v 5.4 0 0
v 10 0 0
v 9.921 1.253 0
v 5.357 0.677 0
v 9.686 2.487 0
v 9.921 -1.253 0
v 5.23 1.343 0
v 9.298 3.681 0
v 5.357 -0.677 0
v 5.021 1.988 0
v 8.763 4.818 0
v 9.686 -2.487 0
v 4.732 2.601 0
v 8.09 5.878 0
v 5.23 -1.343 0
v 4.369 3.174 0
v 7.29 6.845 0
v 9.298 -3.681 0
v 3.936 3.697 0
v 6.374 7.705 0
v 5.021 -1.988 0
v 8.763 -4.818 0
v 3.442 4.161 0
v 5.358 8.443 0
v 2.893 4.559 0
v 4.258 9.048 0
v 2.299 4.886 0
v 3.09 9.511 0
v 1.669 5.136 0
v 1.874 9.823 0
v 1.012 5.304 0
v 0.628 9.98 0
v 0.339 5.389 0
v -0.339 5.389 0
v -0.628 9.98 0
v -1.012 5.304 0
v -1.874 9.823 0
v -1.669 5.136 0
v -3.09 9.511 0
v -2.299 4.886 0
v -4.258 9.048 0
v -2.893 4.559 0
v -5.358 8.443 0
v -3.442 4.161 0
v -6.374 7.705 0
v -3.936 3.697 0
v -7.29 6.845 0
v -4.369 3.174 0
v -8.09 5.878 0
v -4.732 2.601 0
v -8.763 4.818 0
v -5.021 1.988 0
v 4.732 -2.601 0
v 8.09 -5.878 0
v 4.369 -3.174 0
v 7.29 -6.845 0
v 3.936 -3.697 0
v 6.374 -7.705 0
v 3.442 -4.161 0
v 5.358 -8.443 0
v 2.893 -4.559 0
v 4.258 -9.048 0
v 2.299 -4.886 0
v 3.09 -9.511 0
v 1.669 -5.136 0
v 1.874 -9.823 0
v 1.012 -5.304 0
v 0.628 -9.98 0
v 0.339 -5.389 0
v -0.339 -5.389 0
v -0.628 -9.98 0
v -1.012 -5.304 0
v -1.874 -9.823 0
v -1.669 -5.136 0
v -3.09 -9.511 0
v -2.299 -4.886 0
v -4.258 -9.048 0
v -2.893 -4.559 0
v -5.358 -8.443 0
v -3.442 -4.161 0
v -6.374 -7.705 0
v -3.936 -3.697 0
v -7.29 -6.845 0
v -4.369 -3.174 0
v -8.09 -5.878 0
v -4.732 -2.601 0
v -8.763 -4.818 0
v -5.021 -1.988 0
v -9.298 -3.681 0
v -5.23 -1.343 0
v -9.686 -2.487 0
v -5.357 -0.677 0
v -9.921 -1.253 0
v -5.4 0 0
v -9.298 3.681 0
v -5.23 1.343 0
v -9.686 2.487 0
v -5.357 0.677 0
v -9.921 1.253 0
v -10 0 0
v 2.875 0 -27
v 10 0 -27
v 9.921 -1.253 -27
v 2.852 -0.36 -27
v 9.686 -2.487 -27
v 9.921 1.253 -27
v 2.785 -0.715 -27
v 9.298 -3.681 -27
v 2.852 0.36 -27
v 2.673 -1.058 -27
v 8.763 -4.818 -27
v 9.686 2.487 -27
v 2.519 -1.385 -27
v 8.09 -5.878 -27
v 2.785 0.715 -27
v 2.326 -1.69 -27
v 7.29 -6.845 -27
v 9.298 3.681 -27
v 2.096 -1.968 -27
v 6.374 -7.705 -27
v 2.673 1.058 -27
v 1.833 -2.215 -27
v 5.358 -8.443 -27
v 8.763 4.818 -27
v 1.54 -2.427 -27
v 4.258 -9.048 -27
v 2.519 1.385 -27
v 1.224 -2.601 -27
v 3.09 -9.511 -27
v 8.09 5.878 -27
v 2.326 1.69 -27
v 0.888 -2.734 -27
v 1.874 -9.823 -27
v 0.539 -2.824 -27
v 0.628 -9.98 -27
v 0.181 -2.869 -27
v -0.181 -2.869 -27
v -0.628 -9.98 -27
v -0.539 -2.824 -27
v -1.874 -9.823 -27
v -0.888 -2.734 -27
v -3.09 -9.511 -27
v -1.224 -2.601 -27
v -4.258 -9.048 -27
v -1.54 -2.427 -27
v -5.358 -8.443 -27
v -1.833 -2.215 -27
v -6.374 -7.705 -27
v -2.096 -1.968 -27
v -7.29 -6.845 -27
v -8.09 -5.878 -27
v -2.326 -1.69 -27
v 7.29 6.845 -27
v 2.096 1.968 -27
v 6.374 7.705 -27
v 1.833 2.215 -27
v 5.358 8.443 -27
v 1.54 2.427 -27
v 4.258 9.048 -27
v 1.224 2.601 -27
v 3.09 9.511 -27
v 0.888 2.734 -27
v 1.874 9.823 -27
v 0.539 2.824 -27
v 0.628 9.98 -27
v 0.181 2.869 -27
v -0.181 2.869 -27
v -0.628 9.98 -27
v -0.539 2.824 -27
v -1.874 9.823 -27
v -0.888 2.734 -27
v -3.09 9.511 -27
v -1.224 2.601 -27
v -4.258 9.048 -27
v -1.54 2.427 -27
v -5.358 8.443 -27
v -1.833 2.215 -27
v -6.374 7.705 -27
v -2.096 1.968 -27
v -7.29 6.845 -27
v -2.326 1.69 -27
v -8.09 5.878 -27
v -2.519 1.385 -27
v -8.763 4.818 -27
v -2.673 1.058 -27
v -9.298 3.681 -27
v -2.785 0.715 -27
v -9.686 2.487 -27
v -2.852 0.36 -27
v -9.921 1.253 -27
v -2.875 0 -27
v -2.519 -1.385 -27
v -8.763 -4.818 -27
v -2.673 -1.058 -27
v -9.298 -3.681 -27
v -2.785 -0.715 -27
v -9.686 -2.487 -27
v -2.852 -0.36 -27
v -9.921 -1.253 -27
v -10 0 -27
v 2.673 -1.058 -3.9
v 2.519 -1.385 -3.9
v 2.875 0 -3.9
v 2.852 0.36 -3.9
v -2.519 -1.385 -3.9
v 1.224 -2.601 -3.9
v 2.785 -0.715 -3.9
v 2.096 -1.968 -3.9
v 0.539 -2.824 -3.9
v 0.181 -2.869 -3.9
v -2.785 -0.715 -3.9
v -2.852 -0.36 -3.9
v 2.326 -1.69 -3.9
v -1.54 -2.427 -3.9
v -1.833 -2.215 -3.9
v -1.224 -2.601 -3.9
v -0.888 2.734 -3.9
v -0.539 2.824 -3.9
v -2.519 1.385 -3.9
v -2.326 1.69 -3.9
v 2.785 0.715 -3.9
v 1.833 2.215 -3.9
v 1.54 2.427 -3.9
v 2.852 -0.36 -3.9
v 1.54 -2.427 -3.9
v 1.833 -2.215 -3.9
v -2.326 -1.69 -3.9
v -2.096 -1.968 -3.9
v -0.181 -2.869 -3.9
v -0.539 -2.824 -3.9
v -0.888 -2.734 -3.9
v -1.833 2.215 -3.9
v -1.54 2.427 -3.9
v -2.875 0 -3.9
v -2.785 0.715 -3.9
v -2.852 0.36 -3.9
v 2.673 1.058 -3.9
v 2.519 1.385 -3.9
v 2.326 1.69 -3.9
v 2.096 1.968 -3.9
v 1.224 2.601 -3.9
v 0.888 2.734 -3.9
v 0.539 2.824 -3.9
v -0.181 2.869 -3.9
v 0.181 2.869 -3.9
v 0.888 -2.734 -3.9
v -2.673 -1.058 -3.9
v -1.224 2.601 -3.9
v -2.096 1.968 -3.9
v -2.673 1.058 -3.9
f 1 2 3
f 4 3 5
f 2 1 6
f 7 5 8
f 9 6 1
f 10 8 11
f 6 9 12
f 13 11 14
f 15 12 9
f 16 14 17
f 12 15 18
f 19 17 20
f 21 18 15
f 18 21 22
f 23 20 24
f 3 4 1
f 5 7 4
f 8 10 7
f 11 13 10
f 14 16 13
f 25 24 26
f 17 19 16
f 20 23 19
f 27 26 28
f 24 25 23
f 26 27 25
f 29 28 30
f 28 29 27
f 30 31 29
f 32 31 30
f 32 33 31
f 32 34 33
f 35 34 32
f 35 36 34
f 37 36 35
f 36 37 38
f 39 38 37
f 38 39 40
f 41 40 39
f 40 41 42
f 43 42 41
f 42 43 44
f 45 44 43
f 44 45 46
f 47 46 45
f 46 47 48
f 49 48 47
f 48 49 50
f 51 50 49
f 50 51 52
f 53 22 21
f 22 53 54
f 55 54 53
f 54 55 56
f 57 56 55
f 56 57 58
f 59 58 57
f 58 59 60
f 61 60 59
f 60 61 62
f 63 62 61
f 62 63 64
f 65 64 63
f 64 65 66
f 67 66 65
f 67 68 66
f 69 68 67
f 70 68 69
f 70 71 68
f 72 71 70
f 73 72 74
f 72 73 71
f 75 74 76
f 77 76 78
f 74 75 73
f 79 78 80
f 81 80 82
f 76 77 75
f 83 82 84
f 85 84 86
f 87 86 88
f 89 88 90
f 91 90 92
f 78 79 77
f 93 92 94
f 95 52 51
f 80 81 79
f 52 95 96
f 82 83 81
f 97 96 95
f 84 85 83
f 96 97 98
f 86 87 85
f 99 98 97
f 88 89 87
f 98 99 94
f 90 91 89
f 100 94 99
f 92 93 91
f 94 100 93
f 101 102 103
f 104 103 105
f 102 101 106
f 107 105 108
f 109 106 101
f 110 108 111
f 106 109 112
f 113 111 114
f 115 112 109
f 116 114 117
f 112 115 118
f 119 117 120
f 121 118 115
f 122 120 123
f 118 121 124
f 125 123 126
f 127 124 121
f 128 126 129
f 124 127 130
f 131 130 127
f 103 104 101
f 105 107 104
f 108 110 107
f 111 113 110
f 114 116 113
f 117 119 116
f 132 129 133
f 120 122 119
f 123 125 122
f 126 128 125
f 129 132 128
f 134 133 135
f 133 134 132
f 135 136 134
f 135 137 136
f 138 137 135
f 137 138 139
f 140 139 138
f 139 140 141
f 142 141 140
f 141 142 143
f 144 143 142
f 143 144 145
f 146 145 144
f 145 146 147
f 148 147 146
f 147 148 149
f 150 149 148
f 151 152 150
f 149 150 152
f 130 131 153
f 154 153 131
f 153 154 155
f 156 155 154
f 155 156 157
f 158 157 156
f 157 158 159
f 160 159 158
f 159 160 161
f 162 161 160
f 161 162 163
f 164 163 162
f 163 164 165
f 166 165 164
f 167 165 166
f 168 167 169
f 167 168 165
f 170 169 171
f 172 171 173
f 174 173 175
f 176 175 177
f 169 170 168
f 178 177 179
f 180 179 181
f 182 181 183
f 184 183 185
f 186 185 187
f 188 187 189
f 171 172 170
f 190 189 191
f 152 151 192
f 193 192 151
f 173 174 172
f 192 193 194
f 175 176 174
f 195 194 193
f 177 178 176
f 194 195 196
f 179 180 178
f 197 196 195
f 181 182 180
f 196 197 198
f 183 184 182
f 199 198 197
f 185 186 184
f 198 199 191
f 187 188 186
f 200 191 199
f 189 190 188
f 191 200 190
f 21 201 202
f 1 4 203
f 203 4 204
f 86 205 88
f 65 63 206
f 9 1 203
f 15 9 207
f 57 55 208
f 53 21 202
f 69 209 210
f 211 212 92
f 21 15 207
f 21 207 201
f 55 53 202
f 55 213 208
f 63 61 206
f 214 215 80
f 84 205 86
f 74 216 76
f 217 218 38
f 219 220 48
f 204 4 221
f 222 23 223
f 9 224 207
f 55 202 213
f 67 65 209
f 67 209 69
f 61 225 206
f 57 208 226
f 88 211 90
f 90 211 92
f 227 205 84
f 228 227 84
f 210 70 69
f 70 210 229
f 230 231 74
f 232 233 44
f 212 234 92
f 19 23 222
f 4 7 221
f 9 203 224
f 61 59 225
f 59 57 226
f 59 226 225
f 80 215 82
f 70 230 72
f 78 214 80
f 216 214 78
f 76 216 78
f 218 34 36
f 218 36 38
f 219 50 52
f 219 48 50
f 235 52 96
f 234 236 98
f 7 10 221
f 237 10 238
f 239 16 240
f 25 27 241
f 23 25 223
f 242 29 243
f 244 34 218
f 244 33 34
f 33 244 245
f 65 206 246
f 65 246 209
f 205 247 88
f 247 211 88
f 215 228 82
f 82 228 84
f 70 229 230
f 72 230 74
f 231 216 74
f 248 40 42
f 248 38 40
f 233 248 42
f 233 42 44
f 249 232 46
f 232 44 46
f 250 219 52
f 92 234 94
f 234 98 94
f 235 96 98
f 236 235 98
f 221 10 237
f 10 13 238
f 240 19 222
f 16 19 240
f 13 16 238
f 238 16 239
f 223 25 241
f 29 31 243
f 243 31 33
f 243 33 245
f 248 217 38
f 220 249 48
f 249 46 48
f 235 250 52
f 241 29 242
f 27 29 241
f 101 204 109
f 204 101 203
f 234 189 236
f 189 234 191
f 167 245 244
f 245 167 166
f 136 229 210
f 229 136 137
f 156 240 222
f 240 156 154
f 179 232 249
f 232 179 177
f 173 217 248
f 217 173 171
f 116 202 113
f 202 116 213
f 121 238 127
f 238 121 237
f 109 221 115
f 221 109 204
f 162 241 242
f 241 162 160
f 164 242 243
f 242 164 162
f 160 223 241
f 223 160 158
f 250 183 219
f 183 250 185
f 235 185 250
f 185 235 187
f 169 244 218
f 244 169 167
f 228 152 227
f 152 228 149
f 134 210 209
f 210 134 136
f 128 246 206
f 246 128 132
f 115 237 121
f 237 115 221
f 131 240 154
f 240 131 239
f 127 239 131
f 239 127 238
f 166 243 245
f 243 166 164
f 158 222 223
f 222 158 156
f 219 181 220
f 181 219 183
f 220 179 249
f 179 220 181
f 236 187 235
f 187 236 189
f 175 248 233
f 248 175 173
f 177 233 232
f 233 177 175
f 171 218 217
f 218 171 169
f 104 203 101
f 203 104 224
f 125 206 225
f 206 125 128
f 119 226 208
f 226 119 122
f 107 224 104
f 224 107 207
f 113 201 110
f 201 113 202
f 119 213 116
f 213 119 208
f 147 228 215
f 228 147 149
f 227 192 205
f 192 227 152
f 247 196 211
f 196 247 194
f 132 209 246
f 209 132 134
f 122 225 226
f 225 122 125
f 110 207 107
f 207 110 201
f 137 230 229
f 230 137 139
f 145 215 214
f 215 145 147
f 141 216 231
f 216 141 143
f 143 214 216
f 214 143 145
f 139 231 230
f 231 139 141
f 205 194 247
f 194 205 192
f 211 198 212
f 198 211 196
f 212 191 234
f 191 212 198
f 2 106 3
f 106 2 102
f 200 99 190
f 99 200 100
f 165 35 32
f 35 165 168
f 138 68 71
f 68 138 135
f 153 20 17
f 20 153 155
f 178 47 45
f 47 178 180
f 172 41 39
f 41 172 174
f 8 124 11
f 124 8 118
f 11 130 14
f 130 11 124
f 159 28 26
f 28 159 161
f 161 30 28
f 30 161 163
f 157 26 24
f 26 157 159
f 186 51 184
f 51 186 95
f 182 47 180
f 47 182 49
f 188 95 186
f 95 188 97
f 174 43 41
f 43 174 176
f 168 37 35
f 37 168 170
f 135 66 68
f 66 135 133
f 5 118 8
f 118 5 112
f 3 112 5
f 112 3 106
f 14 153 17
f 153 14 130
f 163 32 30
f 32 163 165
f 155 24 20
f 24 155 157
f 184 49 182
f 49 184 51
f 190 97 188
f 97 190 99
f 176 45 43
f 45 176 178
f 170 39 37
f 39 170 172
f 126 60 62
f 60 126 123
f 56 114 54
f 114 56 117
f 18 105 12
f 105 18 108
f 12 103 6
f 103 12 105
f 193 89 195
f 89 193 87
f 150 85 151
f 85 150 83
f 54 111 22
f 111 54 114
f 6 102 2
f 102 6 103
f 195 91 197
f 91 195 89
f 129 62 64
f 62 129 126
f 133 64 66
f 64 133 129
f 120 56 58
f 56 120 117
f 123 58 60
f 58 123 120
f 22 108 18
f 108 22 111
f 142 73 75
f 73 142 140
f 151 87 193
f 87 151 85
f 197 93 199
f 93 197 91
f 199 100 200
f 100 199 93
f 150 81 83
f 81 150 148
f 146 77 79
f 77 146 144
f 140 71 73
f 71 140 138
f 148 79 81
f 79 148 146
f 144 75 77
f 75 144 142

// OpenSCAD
$fn = 50;


difference() {
	union() {
		translate(v = [0, 0, -27.0000000000]) {
			cylinder(h = 27, r = 10.0000000000);
		}
	}
	union() {
		translate(v = [0, 0, 0]) {
			rotate(a = [0, 0, 0]) {
				difference() {
					union() {
						#translate(v = [0, 0, -27.0000000000]) {
							cylinder(h = 27, r = 2.6000000000);
						}
						#translate(v = [0, 0, -3.9000000000]) {
							cylinder(h = 3.9000000000, r = 10.0000000000, r1 = 2.8750000000, r2 = 5.4000000000);
						}
						#translate(v = [0, 0, -27.0000000000]) {
							cylinder(h = 27, r = 2.8750000000);
						}
						#translate(v = [0, 0, -27.0000000000]) {
							cylinder(h = 27, r = 2.6000000000);
						}
					}
					union();
				}
			}
		}
	}
}
